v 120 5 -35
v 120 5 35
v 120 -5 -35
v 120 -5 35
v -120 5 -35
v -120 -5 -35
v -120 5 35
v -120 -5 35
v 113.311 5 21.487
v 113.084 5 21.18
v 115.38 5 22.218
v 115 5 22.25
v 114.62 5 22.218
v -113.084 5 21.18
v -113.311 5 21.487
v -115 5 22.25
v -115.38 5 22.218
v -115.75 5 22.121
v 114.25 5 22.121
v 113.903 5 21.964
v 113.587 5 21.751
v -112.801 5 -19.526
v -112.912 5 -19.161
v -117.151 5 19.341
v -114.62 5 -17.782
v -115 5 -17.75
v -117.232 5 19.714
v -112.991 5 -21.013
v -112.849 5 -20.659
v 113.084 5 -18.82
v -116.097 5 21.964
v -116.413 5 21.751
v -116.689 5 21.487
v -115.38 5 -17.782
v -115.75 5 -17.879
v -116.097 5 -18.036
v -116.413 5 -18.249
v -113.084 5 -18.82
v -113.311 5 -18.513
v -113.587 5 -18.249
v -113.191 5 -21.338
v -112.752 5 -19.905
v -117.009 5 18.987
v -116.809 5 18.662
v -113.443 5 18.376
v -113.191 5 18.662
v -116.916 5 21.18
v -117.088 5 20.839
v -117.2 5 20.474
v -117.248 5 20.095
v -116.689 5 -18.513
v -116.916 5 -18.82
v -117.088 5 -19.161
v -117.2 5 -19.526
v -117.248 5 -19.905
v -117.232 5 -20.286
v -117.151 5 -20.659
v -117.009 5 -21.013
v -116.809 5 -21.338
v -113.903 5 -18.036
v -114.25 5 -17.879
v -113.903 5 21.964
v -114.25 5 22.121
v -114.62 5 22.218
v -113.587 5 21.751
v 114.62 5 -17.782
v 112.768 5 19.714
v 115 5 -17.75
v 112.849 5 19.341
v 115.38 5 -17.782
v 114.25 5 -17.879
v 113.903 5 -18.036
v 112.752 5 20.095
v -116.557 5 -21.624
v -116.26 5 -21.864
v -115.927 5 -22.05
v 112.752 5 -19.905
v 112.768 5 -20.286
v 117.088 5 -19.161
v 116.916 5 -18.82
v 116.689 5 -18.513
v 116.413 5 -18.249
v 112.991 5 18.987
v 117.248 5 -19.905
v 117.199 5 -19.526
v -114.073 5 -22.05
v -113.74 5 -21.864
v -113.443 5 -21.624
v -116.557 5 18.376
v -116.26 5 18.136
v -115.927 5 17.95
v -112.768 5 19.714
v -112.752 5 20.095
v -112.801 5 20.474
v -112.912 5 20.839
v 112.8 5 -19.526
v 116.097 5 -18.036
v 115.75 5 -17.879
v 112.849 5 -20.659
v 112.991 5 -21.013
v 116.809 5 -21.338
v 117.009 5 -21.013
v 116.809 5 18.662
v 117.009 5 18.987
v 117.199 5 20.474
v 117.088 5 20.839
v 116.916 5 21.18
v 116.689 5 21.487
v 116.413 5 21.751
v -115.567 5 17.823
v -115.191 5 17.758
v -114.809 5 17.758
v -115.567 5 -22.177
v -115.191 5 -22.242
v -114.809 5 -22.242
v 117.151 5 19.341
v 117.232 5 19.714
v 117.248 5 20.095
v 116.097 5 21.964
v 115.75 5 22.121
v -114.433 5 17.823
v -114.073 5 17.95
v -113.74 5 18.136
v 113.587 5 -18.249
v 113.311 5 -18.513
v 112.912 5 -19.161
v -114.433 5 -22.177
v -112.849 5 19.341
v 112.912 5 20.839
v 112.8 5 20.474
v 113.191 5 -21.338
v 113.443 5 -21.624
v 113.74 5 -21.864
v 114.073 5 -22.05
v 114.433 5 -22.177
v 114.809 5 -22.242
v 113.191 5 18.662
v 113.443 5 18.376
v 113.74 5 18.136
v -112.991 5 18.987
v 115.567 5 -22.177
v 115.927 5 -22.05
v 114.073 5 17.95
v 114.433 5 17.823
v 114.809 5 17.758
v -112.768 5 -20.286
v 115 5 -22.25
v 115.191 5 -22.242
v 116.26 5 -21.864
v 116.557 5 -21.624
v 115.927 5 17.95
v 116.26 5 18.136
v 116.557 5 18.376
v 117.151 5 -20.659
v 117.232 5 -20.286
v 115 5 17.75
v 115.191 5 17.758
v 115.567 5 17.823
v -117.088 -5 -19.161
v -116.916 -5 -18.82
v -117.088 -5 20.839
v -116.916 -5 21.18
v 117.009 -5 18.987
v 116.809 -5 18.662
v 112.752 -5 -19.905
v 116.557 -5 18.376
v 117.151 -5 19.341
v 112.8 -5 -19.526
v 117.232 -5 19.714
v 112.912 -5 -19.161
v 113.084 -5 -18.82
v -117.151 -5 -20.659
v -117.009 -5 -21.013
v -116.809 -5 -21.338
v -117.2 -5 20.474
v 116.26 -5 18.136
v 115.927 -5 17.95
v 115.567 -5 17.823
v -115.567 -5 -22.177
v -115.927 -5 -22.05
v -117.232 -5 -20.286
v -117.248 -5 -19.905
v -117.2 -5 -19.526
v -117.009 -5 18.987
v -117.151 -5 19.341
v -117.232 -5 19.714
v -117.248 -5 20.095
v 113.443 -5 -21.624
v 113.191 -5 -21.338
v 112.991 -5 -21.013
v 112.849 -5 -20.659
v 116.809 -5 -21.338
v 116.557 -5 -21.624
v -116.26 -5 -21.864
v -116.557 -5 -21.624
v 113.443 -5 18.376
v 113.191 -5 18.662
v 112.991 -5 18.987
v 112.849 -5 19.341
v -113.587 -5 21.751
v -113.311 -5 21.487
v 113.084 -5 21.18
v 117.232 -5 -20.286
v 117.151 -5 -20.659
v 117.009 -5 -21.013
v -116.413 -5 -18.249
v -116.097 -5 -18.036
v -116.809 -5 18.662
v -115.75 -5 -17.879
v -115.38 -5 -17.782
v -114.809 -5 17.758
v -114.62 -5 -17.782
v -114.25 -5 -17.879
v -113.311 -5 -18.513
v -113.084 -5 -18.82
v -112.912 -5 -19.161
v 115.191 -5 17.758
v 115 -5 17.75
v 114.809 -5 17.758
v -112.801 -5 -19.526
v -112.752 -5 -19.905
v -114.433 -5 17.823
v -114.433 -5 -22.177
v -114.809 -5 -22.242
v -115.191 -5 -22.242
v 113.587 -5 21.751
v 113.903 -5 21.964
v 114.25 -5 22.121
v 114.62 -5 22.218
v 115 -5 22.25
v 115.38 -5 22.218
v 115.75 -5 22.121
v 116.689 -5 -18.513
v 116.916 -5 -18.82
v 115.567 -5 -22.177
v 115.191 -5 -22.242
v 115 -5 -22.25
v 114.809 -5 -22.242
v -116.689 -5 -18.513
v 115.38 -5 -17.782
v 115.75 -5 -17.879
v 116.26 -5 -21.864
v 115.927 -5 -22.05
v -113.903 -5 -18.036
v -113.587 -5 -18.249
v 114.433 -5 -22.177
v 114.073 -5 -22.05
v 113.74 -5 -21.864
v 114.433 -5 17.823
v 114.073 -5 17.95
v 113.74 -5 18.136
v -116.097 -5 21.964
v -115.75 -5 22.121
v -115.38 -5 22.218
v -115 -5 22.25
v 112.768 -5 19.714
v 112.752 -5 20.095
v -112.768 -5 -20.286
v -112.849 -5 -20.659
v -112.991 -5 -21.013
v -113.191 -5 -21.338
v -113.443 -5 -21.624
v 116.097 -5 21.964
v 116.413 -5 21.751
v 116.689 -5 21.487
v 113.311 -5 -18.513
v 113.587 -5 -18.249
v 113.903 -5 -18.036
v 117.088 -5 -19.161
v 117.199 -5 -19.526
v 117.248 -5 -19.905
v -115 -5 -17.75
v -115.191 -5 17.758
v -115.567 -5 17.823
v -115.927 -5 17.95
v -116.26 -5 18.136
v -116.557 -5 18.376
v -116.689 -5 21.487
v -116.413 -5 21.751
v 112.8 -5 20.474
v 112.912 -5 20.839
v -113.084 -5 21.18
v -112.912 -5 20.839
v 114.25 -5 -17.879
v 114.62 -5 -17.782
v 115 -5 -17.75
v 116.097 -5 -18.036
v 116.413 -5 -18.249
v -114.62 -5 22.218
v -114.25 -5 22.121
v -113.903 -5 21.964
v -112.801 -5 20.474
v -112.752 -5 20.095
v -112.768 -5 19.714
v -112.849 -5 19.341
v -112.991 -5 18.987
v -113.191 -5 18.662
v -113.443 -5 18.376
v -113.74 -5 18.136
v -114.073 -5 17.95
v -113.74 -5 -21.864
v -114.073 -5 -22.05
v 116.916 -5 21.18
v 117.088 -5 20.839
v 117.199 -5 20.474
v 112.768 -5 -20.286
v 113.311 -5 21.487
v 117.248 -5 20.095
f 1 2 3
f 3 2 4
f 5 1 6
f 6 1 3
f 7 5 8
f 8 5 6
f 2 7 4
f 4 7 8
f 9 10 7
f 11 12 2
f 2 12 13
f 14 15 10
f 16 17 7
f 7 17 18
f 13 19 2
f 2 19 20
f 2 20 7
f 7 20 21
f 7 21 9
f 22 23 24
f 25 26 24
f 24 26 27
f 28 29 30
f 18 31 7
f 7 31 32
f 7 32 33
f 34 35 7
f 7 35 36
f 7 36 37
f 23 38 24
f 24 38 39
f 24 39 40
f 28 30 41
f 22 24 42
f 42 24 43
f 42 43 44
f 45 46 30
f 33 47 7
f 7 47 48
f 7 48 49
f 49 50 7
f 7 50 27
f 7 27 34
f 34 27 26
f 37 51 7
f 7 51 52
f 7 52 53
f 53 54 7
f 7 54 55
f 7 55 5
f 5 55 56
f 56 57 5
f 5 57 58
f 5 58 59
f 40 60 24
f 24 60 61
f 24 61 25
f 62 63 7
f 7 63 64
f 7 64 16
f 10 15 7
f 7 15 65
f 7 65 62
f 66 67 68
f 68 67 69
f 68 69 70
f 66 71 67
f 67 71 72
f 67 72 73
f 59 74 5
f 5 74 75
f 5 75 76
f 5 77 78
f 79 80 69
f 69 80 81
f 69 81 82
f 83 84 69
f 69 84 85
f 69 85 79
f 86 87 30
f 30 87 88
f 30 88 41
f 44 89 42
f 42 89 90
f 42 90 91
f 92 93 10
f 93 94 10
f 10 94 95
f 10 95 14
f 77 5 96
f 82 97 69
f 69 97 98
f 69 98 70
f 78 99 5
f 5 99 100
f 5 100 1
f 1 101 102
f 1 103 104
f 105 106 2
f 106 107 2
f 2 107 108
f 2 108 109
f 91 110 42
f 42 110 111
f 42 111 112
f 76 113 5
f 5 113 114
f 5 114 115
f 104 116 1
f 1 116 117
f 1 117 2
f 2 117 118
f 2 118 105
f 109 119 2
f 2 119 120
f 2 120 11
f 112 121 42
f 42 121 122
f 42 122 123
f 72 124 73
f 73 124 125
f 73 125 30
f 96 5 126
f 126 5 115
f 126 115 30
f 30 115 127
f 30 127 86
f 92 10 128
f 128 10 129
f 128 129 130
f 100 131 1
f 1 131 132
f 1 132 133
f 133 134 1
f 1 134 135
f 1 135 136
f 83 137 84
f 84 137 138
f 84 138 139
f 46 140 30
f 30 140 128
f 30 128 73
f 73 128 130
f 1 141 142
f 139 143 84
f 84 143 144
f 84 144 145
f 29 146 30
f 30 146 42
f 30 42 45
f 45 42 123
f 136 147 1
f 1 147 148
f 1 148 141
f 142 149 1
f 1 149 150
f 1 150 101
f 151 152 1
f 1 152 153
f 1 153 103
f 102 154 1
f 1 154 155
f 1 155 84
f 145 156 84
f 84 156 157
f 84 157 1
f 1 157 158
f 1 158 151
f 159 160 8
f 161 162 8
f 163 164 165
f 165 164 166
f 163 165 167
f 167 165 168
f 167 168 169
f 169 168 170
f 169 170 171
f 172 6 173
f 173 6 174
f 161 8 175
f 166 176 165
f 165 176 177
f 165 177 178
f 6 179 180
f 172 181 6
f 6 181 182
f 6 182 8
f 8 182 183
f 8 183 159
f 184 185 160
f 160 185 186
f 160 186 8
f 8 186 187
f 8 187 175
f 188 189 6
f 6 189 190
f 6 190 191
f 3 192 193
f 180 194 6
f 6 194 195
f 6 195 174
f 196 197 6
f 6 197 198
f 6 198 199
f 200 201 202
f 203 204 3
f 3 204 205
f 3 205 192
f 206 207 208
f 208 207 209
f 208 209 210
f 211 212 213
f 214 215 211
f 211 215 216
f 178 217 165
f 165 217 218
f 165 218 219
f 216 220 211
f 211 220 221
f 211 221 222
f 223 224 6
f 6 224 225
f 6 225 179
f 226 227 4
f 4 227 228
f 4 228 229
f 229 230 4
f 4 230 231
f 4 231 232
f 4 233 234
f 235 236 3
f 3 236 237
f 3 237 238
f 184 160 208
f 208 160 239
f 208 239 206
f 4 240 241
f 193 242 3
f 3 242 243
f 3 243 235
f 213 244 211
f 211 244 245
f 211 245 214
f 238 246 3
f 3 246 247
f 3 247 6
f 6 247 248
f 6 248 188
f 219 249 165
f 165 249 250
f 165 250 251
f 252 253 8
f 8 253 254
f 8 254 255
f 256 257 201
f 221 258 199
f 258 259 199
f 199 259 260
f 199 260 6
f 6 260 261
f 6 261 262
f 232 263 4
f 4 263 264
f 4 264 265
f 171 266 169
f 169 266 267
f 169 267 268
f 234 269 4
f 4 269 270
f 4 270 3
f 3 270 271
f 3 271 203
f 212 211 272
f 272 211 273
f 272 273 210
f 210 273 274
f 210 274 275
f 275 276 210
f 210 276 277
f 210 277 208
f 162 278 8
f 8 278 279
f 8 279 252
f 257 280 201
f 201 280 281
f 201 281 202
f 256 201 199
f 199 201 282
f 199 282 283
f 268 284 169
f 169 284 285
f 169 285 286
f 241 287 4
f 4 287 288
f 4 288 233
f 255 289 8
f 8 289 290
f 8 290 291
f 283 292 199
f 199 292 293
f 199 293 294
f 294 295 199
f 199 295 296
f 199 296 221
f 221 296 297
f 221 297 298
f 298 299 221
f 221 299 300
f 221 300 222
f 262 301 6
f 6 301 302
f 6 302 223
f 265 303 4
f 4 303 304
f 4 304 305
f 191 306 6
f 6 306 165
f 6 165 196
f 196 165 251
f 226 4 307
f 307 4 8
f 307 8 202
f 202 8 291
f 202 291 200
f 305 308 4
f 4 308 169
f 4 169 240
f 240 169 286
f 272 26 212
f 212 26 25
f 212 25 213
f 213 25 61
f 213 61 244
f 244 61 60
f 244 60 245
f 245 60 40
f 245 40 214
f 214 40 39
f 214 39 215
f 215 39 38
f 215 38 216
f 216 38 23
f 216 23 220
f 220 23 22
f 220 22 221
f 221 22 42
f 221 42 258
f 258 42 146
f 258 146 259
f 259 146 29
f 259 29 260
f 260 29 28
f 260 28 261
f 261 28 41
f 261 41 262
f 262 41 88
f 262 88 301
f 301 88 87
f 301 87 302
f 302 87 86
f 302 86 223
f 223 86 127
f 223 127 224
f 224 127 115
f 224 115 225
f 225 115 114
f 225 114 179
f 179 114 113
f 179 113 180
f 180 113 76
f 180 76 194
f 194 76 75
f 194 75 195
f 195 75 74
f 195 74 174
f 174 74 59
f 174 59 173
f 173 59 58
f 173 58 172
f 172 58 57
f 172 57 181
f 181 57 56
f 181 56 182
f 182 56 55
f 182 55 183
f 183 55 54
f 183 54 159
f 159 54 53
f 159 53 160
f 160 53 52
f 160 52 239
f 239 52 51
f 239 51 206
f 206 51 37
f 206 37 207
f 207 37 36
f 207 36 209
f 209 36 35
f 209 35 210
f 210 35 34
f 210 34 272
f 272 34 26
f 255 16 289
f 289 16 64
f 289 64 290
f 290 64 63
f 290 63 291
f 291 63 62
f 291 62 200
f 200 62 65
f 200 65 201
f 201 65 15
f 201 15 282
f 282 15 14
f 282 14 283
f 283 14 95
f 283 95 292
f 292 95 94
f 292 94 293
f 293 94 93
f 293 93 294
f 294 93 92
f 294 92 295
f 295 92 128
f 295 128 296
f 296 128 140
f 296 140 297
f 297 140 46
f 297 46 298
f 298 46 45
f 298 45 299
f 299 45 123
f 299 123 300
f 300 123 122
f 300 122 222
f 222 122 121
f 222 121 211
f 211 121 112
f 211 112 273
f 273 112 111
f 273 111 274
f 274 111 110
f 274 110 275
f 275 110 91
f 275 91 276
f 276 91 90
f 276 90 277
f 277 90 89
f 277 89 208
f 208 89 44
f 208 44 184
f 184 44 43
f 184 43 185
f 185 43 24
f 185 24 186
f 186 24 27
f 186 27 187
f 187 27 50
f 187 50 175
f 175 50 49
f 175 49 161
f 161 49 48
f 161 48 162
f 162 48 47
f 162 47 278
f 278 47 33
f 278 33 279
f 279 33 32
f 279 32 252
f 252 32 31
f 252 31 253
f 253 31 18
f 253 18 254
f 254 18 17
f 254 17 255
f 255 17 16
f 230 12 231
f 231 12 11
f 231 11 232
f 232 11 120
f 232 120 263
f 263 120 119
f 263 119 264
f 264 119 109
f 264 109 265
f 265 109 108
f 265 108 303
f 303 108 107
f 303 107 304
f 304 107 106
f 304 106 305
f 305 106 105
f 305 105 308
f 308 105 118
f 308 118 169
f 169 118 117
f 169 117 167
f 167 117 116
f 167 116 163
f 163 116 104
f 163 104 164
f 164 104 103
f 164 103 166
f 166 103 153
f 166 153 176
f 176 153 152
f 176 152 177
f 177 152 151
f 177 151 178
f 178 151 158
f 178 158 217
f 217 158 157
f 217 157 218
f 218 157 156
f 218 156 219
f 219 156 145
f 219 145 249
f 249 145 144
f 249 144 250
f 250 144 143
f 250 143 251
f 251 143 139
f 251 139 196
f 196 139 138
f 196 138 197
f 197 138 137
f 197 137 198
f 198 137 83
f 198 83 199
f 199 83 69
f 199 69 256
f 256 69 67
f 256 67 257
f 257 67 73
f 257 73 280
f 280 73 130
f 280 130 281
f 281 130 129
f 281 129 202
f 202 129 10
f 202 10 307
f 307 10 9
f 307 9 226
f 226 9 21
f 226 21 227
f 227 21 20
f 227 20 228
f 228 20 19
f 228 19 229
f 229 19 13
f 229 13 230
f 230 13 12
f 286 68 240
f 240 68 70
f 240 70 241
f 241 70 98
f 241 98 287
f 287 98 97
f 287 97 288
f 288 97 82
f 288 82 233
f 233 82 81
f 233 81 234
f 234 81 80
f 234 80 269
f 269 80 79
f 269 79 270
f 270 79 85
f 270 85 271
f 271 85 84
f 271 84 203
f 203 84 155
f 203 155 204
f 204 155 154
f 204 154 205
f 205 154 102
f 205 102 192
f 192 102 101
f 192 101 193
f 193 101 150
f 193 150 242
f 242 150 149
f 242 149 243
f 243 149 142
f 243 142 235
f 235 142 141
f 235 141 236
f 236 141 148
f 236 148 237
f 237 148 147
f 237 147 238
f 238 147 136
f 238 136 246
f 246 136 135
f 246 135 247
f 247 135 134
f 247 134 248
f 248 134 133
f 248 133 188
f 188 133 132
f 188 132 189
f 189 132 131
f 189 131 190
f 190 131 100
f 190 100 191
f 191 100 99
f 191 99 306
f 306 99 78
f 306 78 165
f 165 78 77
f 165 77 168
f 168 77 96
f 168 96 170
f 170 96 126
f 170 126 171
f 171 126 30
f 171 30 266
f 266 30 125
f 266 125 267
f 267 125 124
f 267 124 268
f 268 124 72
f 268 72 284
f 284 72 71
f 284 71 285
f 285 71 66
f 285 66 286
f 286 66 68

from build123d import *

# Parameters (mm, degrees)
CROQUIS1_W              = 240
CROQUIS1_H              = 70
SALIENTE_EXTRUIR1_DEPTH = 5
CROQUIS2_R              = 2.25
CORTAR_EXTRUIR1_DEPTH   = 126.39936204


with BuildPart() as part:
    # Croquis1 → Saliente-Extruir1 (new, symmetric)
    with BuildSketch(Plane(origin=(0, 0, 0), x_dir=(1, 0, 0), z_dir=(0, 1, 0))):
        Rectangle(CROQUIS1_W, CROQUIS1_H)
    extrude(amount=SALIENTE_EXTRUIR1_DEPTH, both=True)

    # Croquis2 → Cortar-Extruir1 (cut, through all)
    with BuildSketch(Plane(origin=(0, 5, 0), x_dir=(1, 0, 0), z_dir=(0, 1, 0))):
        with Locations(Location((-115, 20, 0), (0, 0, 270))):
            Circle(CROQUIS2_R)
        with Locations(Location((-115, -20, 0), (0, 0, 270))):
            Circle(CROQUIS2_R)
        with Locations(Location((115, -20, 0), (0, 0, 90))):
            Circle(CROQUIS2_R)
        with Locations(Location((115, 20, 0), (0, 0, 90))):
            Circle(CROQUIS2_R)
    extrude(amount=-CORTAR_EXTRUIR1_DEPTH, mode=Mode.SUBTRACT)


solid = part.part
